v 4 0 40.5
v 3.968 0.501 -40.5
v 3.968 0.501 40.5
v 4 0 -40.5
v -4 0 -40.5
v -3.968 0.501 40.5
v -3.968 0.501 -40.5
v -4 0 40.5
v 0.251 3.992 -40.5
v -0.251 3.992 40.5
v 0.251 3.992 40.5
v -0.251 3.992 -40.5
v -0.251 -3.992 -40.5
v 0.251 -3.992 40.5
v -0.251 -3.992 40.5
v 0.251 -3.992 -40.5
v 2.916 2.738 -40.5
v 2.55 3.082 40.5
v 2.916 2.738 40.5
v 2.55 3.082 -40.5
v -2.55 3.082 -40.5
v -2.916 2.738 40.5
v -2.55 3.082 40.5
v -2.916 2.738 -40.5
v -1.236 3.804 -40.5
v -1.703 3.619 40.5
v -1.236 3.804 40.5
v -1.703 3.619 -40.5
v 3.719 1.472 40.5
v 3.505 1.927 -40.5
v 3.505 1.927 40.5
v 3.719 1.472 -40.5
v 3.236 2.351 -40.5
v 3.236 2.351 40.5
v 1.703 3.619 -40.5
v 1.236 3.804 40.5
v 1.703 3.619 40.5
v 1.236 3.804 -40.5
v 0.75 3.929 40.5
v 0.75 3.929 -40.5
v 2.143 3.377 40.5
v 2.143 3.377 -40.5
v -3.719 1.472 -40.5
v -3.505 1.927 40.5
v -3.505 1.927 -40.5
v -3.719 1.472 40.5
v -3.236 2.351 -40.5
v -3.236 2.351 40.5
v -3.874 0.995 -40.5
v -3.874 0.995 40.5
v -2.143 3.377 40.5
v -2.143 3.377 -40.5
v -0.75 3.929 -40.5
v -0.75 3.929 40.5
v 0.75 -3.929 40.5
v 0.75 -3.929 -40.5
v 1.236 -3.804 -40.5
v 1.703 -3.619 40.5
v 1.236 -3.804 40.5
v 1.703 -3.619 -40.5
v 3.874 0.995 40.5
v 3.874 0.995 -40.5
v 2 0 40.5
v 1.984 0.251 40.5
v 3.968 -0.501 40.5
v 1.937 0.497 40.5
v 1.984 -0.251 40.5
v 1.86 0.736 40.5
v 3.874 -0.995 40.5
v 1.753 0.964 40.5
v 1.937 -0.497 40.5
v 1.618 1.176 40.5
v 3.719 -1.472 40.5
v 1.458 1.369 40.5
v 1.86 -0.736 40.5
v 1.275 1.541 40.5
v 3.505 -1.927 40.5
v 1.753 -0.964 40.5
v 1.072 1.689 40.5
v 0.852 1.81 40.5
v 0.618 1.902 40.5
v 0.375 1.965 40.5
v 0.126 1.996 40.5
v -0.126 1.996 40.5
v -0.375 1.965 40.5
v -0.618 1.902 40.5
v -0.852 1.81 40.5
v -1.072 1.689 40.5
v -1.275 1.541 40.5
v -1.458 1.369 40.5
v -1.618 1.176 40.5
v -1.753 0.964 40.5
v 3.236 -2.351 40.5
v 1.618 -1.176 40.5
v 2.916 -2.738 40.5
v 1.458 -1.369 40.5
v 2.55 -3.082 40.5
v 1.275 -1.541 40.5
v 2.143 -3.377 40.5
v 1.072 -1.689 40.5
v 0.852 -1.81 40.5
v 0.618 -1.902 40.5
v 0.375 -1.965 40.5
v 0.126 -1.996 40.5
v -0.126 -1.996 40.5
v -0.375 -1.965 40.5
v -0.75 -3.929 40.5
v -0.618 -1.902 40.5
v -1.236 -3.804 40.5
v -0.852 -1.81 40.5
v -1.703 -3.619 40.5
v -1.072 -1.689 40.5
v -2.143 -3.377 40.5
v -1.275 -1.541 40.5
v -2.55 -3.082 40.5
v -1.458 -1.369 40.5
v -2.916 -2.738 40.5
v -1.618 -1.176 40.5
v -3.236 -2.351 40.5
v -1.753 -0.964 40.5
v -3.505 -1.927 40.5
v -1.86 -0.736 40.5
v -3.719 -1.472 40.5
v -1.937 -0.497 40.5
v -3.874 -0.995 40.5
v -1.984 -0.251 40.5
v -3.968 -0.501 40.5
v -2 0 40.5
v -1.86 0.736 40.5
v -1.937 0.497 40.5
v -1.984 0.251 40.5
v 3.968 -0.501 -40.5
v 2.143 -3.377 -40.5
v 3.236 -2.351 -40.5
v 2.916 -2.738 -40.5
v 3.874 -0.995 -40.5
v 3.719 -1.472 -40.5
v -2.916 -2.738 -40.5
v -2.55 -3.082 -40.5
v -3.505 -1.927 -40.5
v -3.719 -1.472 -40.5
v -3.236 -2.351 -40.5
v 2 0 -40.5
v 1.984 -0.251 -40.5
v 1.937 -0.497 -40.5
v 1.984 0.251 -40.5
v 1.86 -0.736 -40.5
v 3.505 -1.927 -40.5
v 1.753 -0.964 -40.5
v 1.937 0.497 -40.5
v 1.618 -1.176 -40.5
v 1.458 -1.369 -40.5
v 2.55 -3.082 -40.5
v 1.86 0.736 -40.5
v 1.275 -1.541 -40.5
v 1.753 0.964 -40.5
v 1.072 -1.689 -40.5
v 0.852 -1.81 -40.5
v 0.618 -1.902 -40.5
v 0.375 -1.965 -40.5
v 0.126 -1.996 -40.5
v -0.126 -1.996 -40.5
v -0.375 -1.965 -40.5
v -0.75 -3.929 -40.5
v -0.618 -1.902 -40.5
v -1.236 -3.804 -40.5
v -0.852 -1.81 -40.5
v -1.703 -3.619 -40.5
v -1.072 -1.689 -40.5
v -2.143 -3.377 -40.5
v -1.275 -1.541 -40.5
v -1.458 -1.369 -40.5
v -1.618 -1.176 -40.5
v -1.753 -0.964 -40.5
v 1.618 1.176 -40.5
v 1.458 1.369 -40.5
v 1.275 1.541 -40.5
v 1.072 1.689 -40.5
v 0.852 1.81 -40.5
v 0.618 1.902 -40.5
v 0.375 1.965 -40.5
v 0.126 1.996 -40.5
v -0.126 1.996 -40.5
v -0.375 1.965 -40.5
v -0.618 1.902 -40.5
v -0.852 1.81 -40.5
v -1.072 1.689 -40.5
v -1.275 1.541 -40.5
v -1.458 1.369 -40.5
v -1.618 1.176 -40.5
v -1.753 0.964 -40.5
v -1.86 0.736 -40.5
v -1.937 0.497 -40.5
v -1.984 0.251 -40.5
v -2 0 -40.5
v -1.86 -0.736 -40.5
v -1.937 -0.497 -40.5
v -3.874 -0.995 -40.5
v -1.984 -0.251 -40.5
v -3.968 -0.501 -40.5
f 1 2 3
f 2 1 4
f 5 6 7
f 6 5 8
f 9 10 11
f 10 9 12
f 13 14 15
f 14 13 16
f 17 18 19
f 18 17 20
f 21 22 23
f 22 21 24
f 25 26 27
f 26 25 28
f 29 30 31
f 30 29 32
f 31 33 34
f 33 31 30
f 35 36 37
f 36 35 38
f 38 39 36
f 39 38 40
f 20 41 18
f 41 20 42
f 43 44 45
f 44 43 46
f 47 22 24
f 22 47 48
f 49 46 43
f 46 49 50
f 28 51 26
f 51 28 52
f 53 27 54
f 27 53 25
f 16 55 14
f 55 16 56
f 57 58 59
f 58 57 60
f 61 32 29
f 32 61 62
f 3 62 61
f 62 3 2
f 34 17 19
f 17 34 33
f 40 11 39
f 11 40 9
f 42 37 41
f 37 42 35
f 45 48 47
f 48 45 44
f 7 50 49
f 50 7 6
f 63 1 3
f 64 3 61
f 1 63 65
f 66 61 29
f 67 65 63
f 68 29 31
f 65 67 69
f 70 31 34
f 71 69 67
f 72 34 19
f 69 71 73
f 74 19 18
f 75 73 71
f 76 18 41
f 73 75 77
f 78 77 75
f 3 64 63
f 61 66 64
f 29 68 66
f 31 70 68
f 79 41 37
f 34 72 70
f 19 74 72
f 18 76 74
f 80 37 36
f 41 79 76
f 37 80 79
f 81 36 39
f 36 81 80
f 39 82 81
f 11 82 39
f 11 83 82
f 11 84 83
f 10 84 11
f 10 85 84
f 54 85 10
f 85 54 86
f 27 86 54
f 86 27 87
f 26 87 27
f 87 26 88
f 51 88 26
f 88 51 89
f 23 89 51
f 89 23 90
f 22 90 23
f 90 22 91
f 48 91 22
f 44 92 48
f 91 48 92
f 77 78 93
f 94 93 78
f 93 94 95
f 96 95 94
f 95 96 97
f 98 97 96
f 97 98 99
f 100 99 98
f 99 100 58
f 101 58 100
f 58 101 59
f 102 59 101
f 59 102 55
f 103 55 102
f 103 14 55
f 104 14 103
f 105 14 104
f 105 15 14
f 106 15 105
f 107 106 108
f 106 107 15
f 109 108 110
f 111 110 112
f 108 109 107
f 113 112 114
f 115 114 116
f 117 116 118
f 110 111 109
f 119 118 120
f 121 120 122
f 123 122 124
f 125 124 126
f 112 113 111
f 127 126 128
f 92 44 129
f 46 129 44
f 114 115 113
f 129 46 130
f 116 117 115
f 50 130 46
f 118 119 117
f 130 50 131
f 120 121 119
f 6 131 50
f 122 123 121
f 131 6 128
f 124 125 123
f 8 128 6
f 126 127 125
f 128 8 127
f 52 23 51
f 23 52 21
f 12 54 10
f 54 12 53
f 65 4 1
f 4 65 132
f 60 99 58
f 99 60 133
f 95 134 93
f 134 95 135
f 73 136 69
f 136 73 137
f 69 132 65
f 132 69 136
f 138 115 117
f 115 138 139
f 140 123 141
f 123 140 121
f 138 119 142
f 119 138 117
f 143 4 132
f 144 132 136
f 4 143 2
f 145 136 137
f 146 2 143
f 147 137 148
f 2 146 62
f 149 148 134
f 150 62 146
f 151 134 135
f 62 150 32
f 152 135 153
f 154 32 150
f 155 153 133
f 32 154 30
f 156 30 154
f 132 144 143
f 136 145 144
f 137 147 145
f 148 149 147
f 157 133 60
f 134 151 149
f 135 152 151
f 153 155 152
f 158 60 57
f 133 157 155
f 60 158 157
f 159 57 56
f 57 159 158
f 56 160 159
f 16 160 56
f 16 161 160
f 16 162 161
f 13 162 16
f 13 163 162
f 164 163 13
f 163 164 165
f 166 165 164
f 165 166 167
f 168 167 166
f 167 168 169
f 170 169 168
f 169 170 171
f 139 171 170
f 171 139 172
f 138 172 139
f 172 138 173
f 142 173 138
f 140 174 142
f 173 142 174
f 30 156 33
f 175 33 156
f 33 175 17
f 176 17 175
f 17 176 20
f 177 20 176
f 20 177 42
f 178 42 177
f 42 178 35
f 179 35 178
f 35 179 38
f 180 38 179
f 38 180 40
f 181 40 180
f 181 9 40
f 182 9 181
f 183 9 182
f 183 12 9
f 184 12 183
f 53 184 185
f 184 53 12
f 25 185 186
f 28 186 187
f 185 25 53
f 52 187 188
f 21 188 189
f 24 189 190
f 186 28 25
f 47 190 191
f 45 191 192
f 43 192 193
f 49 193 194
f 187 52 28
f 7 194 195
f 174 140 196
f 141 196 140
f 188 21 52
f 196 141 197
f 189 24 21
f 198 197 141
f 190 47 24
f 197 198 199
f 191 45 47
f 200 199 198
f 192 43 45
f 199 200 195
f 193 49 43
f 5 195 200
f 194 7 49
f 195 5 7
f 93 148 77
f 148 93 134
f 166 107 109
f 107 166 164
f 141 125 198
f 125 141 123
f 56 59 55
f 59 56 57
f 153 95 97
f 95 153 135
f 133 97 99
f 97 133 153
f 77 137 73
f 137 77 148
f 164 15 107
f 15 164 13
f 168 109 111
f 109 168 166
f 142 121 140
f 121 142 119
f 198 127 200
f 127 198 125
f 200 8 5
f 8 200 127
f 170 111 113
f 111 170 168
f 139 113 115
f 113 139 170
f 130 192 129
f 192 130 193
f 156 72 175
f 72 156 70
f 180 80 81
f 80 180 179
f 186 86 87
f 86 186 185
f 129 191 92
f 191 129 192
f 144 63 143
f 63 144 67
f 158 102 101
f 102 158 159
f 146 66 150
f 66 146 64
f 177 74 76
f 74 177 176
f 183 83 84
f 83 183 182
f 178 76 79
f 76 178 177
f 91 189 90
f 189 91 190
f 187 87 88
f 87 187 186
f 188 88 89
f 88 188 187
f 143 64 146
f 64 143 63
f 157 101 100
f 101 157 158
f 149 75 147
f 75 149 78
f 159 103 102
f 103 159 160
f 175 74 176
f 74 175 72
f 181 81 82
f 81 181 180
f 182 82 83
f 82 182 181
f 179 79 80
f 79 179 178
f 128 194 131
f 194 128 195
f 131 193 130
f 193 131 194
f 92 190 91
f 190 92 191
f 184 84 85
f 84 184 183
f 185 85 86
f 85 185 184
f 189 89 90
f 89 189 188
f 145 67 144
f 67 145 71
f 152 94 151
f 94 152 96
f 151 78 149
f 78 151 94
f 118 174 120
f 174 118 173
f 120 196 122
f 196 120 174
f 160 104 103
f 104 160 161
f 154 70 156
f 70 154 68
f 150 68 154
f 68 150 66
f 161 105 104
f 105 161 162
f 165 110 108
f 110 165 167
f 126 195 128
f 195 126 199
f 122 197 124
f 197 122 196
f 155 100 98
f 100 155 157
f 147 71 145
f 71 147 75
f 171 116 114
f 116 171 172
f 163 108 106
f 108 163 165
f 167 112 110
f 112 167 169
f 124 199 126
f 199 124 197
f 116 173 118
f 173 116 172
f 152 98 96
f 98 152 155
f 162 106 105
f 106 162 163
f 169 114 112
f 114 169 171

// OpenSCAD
$fn = 50;


difference() {
	union() {
		translate(v = [0, 0, -40.5000000000]) {
			cylinder(h = 81, r = 4.0000000000);
		}
	}
	union() {
		translate(v = [0, 0, -100.0000000000]) {
			cylinder(h = 200, r = 2);
		}
	}
}
